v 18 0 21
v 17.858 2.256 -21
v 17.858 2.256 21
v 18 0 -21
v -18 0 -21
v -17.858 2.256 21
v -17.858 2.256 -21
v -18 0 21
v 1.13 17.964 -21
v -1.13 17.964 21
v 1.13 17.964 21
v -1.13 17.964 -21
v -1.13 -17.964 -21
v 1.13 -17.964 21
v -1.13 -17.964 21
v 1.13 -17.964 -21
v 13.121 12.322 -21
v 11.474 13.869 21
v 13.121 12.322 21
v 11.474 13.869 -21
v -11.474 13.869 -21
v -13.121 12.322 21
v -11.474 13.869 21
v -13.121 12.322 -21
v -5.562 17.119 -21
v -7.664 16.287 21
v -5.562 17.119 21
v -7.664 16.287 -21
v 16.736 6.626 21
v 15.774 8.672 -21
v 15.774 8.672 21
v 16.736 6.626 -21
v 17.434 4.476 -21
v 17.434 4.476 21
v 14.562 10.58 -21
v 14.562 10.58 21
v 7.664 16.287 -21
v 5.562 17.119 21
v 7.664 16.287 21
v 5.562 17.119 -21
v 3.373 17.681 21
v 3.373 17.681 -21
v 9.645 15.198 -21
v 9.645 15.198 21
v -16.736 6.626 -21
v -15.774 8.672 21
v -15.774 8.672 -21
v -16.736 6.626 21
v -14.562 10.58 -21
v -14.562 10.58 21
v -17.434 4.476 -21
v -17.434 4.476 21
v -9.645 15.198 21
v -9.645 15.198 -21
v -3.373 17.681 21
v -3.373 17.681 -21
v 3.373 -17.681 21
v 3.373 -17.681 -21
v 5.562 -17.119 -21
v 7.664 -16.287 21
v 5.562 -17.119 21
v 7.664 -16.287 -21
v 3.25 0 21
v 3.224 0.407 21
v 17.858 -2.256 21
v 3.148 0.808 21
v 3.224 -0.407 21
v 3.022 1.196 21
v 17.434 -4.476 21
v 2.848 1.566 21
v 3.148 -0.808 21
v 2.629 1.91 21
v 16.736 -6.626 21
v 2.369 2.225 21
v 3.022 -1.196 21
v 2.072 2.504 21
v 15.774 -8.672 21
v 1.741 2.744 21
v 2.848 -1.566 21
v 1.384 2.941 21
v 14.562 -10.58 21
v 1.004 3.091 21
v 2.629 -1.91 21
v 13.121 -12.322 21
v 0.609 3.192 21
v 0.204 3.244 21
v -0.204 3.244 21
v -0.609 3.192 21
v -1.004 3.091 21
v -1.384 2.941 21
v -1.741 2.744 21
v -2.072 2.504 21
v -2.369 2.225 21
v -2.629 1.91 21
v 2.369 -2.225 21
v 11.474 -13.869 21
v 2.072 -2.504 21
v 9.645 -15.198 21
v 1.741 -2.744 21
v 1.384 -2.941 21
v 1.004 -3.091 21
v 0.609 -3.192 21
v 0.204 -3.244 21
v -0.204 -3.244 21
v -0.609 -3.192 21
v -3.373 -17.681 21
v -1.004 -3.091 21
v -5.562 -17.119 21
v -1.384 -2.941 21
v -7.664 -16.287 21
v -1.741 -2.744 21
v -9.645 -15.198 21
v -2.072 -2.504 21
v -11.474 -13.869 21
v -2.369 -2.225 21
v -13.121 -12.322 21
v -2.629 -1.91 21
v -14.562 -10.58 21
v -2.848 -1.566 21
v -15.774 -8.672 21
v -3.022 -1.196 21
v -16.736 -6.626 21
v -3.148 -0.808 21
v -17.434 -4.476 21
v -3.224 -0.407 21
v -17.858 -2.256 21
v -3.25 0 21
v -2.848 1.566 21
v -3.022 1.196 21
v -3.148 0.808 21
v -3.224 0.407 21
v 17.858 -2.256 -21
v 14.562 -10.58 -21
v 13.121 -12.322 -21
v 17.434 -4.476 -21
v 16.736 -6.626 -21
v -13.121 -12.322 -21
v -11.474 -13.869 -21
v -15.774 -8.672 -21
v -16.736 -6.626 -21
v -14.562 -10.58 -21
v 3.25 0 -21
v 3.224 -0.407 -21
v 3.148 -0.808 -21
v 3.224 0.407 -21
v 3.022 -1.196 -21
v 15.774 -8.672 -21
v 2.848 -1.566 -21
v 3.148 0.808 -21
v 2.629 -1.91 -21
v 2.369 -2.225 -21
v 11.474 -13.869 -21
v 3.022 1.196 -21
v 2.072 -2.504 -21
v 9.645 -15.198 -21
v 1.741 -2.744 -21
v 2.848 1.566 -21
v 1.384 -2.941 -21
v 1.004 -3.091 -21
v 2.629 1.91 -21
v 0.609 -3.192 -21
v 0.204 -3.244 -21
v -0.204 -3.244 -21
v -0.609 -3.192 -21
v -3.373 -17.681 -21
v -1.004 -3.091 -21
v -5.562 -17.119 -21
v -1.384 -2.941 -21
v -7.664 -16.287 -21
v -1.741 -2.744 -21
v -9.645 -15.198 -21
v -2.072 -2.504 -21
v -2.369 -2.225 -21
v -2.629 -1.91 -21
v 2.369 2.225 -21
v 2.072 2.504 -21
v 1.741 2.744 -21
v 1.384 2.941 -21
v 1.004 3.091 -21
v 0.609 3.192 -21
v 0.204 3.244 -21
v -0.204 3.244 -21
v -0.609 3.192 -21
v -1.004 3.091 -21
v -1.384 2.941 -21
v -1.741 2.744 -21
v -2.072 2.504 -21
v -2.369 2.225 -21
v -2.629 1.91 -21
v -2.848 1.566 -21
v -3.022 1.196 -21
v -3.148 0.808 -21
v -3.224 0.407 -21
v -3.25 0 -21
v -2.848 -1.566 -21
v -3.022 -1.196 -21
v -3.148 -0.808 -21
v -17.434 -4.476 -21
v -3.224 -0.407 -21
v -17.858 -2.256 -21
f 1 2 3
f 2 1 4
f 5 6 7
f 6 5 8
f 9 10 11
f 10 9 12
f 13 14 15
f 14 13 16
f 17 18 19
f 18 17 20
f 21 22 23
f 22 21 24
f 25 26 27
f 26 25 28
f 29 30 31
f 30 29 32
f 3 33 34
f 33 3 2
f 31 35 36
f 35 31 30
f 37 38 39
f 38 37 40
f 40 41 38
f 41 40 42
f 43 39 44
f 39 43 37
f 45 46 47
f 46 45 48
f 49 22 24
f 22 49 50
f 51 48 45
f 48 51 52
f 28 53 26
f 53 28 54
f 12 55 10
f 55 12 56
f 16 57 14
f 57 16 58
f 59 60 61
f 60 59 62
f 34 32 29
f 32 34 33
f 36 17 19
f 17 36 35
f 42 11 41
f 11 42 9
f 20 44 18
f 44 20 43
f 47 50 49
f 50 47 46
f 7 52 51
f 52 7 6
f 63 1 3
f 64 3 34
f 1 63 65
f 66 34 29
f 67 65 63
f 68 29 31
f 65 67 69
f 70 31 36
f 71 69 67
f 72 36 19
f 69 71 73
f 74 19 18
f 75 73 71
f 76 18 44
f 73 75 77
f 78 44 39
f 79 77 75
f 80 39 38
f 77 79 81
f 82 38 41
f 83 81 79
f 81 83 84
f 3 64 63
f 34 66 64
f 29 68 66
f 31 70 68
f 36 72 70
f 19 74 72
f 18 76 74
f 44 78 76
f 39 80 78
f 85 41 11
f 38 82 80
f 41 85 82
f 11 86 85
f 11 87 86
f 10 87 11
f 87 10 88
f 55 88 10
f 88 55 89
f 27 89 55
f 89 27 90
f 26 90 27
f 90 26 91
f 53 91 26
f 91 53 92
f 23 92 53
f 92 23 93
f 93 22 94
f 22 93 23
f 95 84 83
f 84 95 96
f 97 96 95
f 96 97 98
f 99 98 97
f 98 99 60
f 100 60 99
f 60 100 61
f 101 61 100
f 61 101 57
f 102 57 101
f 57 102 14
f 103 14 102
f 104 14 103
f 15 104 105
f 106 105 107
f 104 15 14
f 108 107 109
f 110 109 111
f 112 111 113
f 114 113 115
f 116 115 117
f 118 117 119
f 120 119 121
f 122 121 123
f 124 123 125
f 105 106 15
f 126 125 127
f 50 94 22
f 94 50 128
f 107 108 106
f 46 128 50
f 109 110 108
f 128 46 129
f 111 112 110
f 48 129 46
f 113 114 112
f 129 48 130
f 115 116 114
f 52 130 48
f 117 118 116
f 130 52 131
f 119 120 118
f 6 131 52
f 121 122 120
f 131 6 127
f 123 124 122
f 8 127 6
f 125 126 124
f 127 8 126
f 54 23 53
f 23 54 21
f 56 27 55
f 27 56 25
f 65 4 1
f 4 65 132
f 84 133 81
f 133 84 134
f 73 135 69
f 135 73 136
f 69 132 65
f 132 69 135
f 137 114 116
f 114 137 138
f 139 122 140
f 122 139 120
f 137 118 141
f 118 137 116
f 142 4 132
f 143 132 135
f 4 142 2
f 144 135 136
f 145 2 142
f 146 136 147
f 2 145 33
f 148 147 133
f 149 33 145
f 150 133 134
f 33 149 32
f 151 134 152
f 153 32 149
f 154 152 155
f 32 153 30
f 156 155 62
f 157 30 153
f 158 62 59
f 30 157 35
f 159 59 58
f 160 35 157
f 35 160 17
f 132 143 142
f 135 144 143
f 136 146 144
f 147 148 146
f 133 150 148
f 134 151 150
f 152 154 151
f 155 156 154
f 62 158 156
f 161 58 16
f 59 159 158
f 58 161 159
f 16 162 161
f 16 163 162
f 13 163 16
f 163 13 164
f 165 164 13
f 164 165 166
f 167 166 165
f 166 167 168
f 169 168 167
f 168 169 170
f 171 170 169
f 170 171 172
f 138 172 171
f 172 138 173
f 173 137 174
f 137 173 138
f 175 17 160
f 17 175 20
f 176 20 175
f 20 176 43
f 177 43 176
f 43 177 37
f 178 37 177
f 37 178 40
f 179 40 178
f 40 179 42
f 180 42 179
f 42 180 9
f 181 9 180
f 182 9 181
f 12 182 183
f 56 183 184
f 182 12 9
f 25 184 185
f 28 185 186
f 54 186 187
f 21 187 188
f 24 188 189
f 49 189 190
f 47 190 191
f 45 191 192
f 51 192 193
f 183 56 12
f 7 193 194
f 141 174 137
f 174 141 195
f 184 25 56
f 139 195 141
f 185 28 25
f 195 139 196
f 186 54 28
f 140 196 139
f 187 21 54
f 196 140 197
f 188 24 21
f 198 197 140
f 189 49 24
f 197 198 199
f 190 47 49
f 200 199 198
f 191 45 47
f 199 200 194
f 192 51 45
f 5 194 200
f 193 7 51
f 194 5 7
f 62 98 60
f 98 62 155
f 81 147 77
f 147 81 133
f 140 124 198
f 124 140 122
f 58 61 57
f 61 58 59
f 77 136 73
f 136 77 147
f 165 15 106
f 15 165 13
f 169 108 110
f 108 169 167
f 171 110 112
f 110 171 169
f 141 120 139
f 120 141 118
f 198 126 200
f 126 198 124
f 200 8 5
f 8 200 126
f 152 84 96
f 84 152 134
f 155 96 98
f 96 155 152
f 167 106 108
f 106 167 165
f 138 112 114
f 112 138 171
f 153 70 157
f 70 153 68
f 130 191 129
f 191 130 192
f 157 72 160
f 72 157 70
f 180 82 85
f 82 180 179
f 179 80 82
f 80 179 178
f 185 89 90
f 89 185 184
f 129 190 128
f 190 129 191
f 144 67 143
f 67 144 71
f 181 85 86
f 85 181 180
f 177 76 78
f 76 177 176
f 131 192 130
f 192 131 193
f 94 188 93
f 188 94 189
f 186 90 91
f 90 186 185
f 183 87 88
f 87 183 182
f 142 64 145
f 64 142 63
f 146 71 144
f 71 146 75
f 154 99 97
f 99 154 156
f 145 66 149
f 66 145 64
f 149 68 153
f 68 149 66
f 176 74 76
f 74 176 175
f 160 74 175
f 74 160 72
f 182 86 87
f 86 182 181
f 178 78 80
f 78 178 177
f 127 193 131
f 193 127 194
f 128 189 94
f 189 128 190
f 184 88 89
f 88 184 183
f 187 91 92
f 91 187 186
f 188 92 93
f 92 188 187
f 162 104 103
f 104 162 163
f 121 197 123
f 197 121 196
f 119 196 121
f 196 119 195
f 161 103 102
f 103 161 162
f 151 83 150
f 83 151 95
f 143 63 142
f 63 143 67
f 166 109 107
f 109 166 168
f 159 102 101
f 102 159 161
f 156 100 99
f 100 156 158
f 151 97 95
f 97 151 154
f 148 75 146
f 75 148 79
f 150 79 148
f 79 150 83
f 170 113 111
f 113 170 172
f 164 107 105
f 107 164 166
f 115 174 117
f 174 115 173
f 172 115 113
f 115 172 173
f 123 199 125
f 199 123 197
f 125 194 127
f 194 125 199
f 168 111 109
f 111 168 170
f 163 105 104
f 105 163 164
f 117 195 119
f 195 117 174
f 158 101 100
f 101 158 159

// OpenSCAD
$fn = 50;


difference() {
	union() {
		translate(v = [0, 0, -21.0000000000]) {
			cylinder(h = 42, r = 18.0000000000);
		}
	}
	union() {
		translate(v = [0, 0, -100.0000000000]) {
			cylinder(h = 200, r = 3.2500000000);
		}
	}
}
